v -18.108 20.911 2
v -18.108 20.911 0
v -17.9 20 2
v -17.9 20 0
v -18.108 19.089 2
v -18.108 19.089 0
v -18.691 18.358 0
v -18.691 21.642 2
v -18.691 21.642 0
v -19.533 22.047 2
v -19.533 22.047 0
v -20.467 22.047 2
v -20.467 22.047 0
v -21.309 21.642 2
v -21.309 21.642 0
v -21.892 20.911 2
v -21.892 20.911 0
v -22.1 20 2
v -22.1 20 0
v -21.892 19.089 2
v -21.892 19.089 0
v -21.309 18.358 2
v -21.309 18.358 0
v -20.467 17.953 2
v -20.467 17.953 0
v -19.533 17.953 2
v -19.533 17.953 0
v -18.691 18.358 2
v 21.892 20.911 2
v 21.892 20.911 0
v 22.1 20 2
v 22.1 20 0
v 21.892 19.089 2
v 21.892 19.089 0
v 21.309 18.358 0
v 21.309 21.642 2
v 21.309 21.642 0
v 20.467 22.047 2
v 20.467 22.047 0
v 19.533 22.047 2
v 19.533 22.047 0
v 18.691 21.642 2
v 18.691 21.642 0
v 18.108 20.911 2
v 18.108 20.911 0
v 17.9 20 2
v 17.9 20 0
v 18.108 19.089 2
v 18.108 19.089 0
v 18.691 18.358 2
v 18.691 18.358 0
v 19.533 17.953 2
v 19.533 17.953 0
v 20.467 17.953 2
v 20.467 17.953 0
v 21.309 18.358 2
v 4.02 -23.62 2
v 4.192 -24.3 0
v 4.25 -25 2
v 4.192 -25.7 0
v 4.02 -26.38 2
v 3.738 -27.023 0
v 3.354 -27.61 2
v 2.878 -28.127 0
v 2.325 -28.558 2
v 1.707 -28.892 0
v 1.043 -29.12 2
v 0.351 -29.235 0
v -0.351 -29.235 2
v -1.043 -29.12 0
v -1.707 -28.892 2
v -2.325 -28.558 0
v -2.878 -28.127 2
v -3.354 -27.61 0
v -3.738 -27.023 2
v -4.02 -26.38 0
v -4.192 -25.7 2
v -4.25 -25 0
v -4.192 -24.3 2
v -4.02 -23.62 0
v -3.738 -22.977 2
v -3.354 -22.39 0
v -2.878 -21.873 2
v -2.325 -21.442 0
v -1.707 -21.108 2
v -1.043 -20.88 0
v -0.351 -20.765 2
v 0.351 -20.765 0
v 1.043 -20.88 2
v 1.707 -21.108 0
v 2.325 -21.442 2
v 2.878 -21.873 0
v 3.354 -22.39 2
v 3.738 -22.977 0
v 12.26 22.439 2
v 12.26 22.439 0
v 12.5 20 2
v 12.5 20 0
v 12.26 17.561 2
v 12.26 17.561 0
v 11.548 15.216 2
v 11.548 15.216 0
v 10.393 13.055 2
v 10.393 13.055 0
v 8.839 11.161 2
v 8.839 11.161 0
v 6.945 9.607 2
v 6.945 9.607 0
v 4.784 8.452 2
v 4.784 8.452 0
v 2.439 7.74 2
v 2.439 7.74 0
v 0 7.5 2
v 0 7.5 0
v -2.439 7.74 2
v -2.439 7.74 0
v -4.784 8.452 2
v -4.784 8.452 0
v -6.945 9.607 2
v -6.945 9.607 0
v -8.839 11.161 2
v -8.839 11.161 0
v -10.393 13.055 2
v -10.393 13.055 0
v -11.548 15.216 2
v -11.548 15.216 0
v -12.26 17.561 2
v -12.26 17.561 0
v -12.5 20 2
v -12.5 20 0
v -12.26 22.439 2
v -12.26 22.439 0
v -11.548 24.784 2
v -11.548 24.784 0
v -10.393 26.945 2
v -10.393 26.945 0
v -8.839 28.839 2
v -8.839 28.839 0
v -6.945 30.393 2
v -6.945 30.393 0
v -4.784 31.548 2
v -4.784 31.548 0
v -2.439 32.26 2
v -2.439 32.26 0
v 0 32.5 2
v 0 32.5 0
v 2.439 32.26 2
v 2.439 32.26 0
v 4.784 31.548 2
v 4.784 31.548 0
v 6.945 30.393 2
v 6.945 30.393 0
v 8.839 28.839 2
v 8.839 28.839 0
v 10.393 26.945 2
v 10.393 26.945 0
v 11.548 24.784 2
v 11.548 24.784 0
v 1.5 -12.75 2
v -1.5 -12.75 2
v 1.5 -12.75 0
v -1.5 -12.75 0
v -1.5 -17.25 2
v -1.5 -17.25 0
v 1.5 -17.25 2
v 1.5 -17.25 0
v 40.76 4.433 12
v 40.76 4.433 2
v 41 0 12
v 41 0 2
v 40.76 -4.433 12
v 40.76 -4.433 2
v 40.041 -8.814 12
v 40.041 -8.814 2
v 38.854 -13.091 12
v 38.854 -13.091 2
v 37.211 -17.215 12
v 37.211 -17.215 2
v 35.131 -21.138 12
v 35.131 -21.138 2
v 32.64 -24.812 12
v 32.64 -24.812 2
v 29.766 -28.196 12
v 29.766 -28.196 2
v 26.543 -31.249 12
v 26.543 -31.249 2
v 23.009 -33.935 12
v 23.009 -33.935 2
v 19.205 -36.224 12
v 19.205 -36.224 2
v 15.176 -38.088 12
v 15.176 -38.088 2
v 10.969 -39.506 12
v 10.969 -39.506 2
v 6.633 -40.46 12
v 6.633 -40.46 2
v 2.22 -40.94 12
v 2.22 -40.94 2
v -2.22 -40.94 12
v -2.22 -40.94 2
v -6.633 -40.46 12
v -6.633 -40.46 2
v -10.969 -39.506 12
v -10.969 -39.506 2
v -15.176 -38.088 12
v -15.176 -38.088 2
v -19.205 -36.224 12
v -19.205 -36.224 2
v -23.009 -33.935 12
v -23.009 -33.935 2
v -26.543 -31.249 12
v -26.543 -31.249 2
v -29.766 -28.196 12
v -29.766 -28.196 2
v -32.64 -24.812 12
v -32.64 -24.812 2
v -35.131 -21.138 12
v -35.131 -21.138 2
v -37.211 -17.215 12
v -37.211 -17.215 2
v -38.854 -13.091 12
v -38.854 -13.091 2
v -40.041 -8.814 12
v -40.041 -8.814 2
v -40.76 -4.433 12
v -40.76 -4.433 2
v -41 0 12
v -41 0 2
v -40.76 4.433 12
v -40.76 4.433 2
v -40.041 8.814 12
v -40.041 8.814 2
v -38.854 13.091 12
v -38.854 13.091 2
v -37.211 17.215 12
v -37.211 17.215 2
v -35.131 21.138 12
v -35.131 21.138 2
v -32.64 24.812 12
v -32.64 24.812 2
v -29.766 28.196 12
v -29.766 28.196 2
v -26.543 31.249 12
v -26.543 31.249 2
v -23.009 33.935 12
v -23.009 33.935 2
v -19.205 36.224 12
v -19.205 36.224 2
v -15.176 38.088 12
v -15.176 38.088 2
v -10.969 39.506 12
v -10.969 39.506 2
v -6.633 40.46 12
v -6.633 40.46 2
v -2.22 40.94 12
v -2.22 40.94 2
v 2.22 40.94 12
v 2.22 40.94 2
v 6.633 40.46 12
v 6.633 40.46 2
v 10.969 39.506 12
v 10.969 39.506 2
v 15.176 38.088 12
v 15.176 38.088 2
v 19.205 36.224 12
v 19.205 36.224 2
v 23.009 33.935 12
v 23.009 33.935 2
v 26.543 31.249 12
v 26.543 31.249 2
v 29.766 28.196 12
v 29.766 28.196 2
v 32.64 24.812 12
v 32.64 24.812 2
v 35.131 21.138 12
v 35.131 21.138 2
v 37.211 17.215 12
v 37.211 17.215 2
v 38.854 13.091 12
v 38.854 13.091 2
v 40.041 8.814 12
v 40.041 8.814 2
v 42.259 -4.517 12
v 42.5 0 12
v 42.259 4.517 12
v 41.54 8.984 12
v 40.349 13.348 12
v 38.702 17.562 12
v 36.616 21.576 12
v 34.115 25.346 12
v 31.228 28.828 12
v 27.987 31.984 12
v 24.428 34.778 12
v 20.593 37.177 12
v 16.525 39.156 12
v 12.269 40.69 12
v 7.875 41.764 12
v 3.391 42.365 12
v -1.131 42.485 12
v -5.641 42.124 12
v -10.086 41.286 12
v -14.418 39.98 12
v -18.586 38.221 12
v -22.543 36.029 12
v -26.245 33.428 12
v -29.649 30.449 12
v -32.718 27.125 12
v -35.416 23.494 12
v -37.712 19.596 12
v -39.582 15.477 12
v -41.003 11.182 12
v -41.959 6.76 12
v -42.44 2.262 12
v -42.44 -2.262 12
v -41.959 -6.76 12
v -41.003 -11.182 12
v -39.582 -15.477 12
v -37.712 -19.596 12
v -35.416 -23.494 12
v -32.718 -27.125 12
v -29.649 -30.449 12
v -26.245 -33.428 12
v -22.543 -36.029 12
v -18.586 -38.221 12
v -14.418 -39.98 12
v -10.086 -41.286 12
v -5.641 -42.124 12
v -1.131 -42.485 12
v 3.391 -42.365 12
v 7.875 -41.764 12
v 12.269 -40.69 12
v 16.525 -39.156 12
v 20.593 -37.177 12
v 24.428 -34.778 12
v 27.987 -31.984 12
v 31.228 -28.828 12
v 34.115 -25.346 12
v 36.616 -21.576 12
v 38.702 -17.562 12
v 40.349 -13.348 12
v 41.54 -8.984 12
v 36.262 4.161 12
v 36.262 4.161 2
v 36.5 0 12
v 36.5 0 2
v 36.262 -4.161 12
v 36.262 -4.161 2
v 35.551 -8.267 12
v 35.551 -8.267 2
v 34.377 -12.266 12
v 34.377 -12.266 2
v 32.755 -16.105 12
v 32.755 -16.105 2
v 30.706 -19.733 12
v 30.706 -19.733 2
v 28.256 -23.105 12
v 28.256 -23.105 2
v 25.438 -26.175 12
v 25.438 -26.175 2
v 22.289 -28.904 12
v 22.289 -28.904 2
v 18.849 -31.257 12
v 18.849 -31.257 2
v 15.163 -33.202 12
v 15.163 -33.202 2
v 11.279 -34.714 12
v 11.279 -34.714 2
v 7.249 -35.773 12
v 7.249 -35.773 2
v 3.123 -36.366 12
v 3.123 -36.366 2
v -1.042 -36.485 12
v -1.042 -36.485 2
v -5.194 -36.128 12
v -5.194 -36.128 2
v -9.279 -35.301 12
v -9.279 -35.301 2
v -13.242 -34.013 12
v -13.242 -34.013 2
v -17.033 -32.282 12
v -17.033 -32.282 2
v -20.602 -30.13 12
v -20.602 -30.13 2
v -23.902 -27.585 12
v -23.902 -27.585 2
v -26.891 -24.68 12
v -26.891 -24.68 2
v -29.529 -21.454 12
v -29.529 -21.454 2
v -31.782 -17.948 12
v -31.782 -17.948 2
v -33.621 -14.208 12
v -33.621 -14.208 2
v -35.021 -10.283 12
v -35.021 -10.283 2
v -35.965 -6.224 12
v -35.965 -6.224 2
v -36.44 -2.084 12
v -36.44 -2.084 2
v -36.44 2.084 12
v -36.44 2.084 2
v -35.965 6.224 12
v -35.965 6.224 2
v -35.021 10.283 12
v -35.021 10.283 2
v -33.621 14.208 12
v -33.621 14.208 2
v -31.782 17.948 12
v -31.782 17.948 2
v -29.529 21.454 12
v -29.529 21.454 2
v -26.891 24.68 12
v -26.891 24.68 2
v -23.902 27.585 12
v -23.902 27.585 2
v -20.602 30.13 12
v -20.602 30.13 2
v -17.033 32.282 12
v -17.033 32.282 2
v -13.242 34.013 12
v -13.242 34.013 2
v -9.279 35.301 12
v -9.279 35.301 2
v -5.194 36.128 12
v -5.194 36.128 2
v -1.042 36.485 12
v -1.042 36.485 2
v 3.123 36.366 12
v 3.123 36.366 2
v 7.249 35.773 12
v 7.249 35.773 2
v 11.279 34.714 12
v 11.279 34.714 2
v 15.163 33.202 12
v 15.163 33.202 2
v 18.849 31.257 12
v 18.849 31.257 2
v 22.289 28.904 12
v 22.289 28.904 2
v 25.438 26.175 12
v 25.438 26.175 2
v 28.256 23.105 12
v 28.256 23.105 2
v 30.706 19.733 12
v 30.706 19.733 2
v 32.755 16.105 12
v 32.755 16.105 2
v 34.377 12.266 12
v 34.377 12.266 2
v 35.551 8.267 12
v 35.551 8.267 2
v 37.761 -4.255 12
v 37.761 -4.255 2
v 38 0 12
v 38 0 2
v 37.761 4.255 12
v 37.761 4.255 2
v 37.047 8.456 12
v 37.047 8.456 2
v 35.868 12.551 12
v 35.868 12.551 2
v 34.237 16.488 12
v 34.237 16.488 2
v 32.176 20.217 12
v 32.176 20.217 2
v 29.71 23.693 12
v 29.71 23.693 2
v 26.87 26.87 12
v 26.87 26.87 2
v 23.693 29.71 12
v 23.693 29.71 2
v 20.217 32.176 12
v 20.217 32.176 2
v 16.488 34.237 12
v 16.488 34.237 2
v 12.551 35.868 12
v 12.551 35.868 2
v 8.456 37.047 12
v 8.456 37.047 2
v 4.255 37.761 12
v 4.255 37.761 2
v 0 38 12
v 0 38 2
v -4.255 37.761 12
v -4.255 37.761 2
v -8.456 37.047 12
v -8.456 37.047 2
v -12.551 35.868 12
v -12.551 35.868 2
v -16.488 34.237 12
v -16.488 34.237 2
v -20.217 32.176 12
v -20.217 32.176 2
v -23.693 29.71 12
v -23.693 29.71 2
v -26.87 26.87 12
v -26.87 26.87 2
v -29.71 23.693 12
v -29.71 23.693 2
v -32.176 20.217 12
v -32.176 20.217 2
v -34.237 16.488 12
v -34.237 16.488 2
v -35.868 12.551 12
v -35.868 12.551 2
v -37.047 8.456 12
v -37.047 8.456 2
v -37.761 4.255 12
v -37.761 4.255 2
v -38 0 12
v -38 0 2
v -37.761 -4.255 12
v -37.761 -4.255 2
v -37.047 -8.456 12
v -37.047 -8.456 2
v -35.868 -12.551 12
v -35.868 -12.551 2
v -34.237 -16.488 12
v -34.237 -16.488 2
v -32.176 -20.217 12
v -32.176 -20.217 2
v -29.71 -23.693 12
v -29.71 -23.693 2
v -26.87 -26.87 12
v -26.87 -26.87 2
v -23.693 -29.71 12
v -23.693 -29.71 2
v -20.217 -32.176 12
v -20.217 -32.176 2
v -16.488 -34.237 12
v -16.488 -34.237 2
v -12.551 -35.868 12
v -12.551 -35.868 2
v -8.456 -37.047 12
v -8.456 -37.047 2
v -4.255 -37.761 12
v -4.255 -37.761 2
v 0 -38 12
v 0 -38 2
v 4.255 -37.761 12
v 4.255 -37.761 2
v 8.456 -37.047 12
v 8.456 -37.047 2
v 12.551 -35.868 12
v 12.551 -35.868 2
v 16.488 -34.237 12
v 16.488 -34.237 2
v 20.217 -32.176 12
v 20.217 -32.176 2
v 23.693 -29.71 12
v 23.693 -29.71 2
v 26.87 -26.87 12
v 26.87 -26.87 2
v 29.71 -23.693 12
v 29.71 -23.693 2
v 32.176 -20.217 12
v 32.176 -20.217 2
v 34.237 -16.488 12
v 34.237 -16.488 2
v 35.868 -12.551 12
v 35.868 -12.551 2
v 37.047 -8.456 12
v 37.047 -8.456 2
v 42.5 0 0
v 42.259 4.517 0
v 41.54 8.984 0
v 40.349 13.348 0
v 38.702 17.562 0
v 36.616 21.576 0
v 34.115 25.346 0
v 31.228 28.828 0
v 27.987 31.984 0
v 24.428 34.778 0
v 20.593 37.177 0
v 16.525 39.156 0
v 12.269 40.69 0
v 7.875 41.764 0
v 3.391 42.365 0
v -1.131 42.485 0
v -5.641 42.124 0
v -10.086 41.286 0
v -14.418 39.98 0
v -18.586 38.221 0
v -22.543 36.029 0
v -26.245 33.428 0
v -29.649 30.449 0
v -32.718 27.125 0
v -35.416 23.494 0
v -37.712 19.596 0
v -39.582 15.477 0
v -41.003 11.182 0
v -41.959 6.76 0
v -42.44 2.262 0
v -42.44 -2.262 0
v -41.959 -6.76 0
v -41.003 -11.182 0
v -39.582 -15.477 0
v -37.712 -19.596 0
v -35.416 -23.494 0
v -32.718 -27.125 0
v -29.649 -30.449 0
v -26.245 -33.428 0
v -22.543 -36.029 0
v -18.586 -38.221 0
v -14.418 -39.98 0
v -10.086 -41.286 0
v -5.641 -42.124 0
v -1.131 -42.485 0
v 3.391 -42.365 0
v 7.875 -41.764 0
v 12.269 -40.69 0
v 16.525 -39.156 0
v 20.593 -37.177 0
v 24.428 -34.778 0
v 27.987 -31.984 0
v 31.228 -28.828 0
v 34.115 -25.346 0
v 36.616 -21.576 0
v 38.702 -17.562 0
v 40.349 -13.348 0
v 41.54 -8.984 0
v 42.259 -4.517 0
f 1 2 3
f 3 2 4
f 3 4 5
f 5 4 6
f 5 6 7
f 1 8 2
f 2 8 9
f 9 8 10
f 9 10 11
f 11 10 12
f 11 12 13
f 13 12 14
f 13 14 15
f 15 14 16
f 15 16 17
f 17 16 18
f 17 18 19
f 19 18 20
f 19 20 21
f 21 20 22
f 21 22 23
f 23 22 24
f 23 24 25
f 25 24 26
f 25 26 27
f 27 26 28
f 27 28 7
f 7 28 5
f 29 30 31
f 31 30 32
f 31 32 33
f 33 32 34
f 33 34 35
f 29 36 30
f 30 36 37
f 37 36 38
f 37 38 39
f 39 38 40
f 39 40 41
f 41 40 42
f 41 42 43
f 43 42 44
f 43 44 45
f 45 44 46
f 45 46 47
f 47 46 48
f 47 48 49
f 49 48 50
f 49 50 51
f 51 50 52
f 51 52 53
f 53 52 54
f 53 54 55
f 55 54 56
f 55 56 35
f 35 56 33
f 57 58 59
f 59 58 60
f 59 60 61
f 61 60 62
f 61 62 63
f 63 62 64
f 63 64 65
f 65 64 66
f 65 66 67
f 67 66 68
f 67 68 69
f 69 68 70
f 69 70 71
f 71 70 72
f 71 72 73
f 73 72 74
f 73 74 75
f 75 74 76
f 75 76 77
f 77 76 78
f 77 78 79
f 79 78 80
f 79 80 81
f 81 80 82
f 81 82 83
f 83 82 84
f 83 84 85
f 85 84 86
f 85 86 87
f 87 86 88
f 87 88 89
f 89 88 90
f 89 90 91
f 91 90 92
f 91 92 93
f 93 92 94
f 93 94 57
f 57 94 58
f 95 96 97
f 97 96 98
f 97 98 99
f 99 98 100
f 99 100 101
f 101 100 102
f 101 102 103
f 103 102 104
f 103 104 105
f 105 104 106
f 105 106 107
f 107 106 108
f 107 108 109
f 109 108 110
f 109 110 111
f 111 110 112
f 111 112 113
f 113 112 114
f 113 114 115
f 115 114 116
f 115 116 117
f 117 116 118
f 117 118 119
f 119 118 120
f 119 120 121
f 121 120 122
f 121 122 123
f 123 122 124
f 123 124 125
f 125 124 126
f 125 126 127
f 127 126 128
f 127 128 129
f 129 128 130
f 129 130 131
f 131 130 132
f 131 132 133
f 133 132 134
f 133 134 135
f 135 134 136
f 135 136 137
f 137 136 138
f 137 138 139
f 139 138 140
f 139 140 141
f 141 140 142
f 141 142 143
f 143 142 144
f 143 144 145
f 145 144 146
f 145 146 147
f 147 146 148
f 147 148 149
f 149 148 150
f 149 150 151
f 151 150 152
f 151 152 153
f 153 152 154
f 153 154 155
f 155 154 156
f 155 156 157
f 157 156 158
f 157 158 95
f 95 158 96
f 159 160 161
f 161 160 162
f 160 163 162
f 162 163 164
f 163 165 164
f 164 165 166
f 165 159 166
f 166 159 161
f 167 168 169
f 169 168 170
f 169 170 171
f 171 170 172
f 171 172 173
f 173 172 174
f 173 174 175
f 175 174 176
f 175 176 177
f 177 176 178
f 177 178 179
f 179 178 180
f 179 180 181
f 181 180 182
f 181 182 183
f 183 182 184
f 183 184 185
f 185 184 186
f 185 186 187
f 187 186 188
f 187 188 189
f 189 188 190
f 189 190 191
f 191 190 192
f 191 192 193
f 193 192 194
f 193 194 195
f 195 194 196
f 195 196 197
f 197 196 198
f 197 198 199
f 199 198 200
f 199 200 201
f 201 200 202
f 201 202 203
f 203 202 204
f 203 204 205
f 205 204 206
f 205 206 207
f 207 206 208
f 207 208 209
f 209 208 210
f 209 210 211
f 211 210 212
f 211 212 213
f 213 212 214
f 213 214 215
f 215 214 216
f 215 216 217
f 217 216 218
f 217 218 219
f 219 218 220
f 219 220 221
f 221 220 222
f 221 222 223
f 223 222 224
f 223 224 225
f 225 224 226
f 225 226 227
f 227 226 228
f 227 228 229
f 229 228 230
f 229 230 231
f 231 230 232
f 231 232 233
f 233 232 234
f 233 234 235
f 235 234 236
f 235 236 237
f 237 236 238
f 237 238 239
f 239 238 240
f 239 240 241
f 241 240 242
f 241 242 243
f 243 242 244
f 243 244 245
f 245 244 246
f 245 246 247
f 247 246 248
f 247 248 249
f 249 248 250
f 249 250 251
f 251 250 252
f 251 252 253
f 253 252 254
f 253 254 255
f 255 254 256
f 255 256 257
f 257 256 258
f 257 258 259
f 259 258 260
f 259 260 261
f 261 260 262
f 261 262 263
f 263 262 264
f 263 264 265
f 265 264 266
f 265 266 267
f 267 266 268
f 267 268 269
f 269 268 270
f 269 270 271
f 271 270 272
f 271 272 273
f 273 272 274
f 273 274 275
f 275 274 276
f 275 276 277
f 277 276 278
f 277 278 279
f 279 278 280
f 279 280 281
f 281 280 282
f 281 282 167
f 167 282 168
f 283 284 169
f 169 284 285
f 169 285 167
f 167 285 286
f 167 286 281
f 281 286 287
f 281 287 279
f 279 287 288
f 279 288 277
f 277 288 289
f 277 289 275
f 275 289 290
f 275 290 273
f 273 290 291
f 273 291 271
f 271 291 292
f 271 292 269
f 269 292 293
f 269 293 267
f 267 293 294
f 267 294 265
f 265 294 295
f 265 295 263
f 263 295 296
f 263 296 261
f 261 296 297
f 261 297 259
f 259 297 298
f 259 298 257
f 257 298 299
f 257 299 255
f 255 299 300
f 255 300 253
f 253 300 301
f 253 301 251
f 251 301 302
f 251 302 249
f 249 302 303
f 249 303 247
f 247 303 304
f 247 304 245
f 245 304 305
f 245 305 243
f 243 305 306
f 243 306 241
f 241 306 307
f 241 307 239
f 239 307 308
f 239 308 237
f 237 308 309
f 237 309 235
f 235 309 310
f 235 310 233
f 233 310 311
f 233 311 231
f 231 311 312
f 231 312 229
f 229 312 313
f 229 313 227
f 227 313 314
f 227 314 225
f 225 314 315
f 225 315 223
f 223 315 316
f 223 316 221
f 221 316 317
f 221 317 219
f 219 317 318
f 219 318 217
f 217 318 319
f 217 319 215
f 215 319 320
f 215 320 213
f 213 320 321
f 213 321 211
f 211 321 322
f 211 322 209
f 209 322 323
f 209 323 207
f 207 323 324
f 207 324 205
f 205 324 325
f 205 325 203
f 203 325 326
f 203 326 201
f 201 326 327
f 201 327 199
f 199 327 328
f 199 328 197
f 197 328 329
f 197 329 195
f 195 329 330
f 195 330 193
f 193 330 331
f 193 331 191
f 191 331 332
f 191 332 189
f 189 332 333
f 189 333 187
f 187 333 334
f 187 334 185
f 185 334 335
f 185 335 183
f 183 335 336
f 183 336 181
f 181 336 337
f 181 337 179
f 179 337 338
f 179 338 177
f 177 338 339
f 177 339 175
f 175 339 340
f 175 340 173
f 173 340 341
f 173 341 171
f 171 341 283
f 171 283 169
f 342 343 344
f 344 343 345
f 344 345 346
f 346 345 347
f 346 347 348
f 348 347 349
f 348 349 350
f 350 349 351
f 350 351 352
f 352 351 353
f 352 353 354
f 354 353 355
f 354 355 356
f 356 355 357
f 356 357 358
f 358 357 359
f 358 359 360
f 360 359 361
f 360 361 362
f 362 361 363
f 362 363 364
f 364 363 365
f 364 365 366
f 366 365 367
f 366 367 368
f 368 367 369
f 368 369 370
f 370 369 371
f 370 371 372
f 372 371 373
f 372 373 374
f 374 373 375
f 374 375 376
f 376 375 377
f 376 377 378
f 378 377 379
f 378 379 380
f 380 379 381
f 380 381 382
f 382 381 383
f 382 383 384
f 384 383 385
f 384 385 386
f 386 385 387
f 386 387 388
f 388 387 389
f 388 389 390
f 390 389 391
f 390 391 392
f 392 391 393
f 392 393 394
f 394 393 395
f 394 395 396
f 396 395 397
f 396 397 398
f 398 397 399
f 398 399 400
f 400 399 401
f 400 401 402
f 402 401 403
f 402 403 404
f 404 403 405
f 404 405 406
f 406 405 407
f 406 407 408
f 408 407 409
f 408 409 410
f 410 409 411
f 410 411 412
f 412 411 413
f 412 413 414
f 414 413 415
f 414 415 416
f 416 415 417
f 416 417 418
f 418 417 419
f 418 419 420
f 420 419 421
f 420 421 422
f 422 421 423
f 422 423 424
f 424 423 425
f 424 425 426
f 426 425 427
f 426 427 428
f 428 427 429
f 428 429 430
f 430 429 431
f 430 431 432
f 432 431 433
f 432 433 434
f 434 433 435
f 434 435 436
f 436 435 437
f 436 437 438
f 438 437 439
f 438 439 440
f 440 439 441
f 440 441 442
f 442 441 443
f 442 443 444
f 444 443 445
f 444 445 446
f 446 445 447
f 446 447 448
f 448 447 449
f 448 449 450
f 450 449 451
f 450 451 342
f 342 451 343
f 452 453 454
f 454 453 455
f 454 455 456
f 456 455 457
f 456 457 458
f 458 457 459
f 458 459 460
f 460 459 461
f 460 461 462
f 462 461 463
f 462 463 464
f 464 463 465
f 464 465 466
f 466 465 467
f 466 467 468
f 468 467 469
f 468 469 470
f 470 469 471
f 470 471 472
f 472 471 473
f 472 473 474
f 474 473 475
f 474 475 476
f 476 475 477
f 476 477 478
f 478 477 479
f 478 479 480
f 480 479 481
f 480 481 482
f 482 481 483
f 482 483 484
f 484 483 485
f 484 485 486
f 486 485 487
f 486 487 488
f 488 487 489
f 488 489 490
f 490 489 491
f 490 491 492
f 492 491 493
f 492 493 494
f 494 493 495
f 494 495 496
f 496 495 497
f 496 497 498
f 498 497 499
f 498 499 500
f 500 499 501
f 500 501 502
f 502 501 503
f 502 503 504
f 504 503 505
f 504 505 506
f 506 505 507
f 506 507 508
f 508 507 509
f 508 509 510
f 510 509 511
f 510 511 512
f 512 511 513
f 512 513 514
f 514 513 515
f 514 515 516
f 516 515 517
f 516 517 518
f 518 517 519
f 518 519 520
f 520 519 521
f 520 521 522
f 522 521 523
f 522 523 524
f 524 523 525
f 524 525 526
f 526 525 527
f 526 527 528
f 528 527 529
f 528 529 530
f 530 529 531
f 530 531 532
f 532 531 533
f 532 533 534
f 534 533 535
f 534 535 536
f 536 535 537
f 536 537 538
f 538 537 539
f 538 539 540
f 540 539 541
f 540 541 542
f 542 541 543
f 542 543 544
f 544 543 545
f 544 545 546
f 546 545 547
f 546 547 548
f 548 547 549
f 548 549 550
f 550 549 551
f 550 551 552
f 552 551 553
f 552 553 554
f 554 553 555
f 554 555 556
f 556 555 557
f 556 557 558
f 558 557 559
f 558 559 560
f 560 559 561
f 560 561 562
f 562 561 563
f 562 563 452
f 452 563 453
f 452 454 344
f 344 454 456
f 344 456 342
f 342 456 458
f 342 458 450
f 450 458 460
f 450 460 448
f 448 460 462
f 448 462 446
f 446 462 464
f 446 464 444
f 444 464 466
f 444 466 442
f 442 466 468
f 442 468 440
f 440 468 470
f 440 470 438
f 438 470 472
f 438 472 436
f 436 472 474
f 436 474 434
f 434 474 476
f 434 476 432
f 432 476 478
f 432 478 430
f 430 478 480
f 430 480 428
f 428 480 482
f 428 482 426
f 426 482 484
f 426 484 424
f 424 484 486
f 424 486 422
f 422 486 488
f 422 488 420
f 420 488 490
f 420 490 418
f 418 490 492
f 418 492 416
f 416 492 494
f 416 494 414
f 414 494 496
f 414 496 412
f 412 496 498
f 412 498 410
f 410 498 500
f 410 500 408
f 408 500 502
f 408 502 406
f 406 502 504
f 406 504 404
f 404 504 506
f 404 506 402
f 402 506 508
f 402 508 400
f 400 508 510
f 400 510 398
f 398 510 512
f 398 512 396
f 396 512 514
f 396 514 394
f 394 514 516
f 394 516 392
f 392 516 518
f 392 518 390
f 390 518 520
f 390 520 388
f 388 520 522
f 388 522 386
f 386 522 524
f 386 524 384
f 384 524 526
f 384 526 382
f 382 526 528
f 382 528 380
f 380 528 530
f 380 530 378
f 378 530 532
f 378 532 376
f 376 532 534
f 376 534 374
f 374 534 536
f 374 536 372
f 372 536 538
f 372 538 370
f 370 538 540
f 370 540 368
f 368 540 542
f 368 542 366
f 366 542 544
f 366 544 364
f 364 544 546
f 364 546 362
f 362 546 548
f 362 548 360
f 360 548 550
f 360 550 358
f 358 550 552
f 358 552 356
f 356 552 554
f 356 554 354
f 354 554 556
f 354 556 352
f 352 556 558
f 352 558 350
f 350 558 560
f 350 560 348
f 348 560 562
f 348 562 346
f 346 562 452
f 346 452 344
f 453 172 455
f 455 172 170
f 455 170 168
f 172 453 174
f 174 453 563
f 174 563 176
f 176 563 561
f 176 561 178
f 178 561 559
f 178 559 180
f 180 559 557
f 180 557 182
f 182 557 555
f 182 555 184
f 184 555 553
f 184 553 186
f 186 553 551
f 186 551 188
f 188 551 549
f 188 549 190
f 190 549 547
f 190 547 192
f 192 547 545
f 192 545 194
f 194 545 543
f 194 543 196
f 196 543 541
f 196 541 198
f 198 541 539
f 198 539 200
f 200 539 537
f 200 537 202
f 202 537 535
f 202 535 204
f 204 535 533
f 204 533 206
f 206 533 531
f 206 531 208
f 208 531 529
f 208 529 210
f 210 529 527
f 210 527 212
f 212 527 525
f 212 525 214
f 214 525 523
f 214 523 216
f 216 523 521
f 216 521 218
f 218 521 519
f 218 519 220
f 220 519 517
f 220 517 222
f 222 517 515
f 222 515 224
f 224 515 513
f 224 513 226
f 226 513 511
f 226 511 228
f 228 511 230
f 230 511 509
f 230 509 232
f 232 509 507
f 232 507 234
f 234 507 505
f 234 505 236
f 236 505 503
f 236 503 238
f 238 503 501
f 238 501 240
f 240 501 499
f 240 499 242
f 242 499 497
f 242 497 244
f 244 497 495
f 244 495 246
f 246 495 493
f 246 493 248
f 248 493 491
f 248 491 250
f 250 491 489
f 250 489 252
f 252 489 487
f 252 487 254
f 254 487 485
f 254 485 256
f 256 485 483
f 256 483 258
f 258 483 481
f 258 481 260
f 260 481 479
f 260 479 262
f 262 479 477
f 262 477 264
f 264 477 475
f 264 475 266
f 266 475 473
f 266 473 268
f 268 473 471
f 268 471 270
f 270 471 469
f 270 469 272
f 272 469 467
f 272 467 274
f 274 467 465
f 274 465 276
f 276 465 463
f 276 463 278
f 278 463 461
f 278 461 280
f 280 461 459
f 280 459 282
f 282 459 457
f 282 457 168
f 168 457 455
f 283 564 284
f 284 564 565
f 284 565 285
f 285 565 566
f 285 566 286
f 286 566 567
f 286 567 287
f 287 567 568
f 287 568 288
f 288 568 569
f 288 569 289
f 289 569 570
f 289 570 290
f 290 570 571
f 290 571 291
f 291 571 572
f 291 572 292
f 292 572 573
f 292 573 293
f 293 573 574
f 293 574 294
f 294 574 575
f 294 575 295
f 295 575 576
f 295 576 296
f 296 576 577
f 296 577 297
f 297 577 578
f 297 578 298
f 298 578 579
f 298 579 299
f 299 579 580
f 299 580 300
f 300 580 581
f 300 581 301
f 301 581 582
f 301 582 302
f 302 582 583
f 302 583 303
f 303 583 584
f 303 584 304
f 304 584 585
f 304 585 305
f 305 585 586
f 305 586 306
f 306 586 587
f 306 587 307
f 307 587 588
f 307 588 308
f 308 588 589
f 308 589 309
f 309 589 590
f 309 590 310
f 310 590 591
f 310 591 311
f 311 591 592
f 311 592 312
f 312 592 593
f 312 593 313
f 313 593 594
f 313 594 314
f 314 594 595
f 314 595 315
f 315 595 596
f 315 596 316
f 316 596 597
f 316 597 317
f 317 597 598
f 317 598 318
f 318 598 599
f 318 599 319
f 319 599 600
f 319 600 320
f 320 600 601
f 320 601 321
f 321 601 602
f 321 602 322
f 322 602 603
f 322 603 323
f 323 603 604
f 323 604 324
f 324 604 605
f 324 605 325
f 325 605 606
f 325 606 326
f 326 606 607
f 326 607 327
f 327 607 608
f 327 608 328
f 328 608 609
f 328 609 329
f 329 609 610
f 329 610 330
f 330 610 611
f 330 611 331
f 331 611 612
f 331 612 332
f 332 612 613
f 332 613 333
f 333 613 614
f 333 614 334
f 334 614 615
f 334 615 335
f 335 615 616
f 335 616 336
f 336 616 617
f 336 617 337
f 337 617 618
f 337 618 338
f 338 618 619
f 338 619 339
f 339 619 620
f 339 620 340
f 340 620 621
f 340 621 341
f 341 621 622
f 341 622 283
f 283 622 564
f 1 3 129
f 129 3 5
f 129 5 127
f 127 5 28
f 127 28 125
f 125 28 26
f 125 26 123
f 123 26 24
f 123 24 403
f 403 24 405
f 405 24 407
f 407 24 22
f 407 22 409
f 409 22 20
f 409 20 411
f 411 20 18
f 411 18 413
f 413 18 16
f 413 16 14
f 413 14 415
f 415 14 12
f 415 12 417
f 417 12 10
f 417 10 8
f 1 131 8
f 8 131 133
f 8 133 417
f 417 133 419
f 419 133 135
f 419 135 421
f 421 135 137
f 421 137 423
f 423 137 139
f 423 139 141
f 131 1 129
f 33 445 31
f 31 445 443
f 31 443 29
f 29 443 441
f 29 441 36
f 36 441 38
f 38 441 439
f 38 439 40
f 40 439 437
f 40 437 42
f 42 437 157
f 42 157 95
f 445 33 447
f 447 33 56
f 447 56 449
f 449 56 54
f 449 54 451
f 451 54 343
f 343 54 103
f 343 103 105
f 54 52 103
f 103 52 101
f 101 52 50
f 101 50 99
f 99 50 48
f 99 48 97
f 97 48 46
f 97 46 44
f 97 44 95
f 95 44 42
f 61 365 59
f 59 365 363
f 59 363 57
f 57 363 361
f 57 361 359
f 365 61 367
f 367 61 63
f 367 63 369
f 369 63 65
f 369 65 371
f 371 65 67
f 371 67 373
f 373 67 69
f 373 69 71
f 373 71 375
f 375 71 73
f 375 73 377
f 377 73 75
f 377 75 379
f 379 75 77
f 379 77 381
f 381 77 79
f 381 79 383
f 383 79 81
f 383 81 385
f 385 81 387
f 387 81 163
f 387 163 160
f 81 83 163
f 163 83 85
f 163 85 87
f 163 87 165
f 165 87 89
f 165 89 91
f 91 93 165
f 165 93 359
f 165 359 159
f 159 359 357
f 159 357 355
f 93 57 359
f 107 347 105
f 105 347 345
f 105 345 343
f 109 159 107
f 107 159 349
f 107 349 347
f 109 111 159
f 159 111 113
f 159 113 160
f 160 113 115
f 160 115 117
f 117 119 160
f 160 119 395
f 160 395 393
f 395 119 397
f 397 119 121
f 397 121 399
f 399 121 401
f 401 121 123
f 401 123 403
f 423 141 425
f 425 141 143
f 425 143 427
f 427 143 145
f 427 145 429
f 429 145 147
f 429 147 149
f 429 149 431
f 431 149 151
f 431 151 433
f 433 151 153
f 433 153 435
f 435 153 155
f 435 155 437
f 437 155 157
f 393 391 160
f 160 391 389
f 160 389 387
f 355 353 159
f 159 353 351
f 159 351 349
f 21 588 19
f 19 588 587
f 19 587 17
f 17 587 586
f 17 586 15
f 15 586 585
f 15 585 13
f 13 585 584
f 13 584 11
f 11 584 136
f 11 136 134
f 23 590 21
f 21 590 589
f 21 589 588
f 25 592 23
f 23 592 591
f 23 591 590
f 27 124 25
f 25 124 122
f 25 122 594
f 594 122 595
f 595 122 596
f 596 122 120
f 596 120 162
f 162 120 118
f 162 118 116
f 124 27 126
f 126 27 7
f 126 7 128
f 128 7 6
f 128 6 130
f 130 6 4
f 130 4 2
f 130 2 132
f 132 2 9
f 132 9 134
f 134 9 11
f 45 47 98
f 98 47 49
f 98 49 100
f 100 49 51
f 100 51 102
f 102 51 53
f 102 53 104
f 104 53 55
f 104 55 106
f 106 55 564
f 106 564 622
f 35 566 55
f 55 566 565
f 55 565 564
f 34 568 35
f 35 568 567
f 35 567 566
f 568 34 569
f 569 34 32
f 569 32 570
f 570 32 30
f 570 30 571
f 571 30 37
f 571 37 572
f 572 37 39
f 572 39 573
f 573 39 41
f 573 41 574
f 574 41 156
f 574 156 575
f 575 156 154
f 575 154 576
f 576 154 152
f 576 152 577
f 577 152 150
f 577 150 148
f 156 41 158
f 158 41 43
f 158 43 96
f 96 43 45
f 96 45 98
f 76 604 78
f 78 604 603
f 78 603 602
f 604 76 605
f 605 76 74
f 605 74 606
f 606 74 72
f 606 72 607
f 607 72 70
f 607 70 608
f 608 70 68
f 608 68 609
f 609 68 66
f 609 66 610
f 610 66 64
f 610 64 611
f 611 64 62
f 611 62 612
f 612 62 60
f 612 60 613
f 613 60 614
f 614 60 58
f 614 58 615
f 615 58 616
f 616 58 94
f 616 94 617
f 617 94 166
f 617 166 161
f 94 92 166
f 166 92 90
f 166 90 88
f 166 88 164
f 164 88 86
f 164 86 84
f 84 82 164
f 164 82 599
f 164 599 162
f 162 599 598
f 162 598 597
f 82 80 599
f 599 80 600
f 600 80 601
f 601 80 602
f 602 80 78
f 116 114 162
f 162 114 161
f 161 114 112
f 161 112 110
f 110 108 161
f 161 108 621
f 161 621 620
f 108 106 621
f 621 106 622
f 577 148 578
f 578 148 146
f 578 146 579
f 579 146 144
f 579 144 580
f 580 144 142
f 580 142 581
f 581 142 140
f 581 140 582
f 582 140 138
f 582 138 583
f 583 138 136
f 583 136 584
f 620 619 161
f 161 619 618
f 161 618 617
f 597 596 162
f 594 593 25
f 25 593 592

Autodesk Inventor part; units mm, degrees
sketch "Sketch1" plane through (0, 0, 0) normal (0, 0, 1) x (1, 0, 0)
  line L0 (0, 2.8582) -> (0, -2.8582) construction
  line L1 (-5.7775, 0) -> (5.7775, 0) construction
  circle A0 centre (0, 0) radius 42.5
  dimension "d0" = 85
extrude "Extrusion1" add sketch "Sketch1" along normal blind 2
sketch "Sketch2" plane through (0, 0, 2) normal (0, 0, 1) x (1, 0, 0)
  circle A0 centre (0, 0) radius 41
  circle A1 centre (0, 0) radius 38
  circle A2 centre (0, 0) radius 42.5 projected
  circle A3 centre (0, 0) radius 36.5
  dimension "d3" = 82
  dimension "d4" = 76
  dimension "d5" = 73
extrude "Extrusion2" add sketch "Sketch2" along normal blind 10
sketch "Sketch3" plane through (0, 0, 0) normal (0, 0, -1) x (-1, 0, 0)
  circle A0 centre (0, 0) radius 42.5 projected
  circle A1 centre (0, -25) radius 4.25
  line L0 (-59.5, 0) -> (59.5, 0) projected
  line L1 (1.5, -17.25) -> (-1.5, -17.25)
  line L2 (-1.5, -17.25) -> (-1.5, -12.75)
  line L3 (-1.5, -12.75) -> (1.5, -12.75)
  line L4 (1.5, -12.75) -> (1.5, -17.25)
  line L5 (1.5, -17.25) -> (-1.5, -12.75) construction
  line L6 (-1.5, -17.25) -> (1.5, -12.75) construction
  line L7 (0, -59.5) -> (0, 59.5) projected
  circle A2 centre (0, 20) radius 12.5
  point P0 (0, -15)
  dimension "d8" = 8.5
  dimension "d9" = 25
  dimension "d11" = 3
  dimension "d12" = 4.5
  dimension "d13" = 15
  dimension "d14" = 25
  dimension "d15" = 20
extrude "Extrusion3" cut sketch "Sketch3" against normal up to surface (2 mm away) contours A2 L7 | L7 A2 | L7 A1 | A1 L7 | L7 L1 L2 L3 | L3 L4 L1 L7
sketch "Sketch4" plane through (0, 0, 0) normal (0, 0, -1) x (-1, 0, 0)
  circle A0 centre (0, -25) radius 4.25 projected
  circle A1 centre (0, 20) radius 12.5 projected
  line L0 (1.5, -12.75) -> (-1.5, -12.75) projected
  line L1 (-1.5, -12.75) -> (-1.5, -17.25) projected
  line L2 (-1.5, -17.25) -> (1.5, -17.25) projected
  line L3 (1.5, -17.25) -> (1.5, -12.75) projected
  circle A2 centre (0, 0) radius 42.5 projected
  line L4 (-59.5, 0) -> (59.5, 0) projected
  point P0 (-20, 20)
  point P1 (20, 20)
  dimension "d18" = 20
  dimension "d19" = 20
  dimension "d20" = 20
  dimension "d21" = 20
hole "Hole1" at (20, 20, 0) at (-20, 20, 0) direction (0, 0, 1) diameter 4.2 end through all
properties part number "Reservoir Adapter" material "S235"
